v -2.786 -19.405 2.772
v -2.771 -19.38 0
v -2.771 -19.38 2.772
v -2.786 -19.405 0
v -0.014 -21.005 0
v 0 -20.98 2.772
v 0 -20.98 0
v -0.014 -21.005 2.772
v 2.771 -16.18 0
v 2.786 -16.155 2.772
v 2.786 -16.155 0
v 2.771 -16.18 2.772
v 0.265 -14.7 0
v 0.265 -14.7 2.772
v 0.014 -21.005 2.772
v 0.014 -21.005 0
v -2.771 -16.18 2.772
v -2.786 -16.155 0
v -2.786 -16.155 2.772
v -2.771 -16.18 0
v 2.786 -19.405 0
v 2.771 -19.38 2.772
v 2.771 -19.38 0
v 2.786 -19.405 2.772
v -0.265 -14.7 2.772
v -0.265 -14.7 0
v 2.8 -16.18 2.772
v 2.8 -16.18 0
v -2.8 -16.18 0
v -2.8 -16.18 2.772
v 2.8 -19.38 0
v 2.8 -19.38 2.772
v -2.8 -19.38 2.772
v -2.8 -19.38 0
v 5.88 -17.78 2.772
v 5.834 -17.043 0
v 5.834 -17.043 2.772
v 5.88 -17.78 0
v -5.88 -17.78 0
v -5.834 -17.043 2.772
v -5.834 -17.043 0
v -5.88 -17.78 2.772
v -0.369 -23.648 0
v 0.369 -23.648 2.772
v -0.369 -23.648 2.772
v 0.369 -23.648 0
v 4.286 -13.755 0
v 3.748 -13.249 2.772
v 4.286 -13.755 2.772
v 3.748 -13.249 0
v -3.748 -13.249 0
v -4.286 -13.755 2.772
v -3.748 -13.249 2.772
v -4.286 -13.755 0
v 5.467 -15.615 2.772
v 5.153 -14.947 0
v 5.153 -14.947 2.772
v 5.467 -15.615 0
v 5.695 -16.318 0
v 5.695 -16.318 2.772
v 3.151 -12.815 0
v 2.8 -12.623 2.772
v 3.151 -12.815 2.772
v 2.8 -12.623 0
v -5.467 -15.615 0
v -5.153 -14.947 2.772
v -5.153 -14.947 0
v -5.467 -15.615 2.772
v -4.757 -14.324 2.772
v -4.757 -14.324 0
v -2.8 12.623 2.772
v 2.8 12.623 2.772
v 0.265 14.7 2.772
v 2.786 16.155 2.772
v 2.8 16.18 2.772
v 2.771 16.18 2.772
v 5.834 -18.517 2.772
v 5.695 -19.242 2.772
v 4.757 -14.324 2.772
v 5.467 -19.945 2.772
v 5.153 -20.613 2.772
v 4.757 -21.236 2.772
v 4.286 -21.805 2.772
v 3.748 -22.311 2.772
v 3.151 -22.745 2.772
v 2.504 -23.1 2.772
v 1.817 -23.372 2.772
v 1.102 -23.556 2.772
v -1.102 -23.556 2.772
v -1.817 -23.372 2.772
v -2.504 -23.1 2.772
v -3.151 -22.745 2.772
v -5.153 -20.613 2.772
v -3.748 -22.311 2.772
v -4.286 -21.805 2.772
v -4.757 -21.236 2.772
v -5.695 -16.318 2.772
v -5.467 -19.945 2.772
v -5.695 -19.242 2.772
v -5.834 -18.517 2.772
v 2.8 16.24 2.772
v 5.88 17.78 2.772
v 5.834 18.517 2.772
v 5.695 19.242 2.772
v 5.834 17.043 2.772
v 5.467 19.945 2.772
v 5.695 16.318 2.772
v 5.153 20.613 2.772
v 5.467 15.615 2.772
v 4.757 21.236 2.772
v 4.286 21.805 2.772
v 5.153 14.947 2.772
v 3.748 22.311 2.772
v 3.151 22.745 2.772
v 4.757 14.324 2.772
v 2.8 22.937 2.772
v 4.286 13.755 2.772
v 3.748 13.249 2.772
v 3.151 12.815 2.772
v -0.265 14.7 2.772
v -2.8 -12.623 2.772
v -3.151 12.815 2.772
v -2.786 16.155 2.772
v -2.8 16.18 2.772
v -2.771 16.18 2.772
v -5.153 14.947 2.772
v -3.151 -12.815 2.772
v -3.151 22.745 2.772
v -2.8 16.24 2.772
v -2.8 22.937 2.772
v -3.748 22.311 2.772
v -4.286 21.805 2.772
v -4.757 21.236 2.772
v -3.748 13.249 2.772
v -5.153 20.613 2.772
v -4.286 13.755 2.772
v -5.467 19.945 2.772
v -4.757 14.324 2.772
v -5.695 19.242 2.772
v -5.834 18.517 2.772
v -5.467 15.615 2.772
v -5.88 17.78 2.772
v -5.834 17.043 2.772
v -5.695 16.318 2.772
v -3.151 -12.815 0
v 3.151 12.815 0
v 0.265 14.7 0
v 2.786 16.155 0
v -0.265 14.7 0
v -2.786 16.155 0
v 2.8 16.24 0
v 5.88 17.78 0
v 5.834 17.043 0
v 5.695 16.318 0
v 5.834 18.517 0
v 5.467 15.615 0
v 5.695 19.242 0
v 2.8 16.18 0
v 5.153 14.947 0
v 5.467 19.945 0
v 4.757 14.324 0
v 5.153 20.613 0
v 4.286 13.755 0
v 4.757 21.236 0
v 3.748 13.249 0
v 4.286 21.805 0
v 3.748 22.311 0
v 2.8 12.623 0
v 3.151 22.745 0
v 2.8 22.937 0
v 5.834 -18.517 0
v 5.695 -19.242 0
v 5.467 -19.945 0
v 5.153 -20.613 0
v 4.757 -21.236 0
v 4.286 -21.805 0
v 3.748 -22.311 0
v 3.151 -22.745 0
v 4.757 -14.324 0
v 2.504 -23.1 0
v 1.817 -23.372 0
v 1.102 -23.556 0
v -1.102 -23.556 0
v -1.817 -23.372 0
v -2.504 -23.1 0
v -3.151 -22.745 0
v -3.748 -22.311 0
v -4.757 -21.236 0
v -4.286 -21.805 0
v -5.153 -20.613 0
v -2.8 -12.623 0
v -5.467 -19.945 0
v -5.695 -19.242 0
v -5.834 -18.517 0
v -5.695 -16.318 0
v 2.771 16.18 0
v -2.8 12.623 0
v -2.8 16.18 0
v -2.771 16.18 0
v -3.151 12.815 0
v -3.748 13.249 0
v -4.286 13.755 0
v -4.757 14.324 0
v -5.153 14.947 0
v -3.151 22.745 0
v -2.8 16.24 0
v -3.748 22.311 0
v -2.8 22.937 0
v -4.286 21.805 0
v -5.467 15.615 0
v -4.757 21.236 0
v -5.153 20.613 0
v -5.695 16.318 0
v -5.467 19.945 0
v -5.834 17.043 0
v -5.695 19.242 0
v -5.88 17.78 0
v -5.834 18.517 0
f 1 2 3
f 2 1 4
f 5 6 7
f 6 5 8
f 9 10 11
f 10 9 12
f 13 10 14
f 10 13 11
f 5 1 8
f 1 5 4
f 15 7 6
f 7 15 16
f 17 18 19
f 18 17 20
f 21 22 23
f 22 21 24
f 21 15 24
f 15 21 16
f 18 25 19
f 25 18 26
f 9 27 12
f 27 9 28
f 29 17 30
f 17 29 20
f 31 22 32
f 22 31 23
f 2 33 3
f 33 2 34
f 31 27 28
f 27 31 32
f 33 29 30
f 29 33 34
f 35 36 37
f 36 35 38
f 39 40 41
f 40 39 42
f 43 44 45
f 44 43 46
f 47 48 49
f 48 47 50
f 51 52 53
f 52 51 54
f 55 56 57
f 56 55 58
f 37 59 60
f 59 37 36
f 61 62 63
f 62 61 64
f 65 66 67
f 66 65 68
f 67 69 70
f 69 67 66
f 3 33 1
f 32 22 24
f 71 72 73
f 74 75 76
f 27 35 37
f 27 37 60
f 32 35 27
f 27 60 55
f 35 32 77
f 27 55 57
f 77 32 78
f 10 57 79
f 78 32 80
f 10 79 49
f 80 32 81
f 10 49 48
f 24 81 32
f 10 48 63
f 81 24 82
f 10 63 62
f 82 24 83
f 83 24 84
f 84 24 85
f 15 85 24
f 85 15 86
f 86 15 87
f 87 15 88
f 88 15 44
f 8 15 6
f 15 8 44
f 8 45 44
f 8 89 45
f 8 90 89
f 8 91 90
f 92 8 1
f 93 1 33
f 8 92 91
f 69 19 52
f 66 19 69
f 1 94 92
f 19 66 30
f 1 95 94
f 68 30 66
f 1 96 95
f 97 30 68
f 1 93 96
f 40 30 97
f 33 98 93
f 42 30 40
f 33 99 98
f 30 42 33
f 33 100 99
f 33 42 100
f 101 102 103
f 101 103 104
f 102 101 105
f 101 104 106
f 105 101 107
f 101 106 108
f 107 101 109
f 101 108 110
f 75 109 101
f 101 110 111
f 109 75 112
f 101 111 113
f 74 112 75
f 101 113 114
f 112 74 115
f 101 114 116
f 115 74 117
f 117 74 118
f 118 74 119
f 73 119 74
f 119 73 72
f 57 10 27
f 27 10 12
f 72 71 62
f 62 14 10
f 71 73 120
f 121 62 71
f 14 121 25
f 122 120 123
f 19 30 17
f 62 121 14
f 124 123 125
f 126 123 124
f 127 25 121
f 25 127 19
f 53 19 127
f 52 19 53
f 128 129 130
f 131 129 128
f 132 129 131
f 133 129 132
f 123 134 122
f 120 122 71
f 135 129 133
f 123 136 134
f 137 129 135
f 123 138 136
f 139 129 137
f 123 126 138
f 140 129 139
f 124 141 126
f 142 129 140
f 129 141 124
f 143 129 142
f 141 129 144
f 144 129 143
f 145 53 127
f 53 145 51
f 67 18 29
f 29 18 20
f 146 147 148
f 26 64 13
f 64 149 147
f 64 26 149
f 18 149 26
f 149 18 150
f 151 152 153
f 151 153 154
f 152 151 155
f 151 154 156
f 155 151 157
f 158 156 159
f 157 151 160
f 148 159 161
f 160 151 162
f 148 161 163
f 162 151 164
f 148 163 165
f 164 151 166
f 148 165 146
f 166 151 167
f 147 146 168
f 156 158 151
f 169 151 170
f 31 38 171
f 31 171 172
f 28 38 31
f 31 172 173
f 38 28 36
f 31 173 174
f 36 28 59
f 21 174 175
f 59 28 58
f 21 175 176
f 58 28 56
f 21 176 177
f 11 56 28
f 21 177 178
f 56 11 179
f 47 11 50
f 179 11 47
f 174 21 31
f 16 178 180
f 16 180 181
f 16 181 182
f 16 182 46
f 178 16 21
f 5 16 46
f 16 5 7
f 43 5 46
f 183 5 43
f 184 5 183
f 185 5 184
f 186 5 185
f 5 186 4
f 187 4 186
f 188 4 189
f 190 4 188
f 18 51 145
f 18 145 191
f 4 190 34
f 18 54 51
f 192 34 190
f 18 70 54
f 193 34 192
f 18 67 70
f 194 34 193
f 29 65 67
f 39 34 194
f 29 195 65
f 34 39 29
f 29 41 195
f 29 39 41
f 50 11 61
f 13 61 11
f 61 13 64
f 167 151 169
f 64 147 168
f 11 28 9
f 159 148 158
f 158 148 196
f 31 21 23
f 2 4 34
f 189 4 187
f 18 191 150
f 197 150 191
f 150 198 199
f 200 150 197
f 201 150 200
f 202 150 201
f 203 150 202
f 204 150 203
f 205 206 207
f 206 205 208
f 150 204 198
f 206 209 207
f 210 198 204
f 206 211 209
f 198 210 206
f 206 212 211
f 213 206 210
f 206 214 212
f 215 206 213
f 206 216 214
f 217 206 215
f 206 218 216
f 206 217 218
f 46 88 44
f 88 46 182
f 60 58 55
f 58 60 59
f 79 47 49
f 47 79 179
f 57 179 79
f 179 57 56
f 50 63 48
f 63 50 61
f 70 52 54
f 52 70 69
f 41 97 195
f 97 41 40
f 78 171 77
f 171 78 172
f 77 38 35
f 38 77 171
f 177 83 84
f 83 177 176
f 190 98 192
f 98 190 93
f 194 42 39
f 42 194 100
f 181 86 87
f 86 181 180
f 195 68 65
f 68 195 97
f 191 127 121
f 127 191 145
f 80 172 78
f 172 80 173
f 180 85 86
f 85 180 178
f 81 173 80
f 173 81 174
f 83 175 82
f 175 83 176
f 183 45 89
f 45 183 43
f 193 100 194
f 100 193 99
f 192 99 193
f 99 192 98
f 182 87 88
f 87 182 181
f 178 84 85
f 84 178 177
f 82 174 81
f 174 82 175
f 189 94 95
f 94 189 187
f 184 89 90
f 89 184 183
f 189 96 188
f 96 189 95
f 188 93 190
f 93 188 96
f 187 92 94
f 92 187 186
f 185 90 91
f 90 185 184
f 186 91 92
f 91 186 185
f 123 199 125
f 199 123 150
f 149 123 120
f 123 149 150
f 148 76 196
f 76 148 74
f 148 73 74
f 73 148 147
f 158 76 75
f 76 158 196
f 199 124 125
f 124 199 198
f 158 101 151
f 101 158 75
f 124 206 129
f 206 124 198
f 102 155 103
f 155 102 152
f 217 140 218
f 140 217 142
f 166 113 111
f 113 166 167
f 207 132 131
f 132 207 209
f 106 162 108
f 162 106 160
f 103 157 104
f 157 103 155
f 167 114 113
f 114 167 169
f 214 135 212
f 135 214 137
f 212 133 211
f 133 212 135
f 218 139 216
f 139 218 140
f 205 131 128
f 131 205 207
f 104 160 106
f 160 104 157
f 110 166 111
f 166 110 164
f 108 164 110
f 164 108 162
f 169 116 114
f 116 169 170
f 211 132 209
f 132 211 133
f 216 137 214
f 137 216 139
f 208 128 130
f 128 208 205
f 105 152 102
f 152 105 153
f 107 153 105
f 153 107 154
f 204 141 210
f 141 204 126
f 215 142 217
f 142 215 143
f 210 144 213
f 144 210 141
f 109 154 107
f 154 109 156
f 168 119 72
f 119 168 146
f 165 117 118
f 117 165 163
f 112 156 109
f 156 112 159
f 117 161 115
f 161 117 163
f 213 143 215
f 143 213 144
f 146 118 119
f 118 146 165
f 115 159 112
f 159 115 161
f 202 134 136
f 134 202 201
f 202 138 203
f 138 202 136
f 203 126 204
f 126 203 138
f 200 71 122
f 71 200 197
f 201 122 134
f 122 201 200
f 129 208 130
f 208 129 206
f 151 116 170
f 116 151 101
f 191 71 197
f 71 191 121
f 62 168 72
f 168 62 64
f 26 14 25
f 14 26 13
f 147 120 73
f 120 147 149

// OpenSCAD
use <MCAD/shapes.scad>		// For octagon

$fn = 50;					// So the cylinders are smooth

nut_diameter = 5.6;			// My M3 nut measured ~5.4, I added a fudge factor
nut_thickness = 2.31;

// Calculate some nice values

wrench_thickness = 1.2 * nut_thickness;
wrench_length = 5.25 * nut_diameter;
wrench_head_extra_d = 1.1 * nut_diameter;	// If your wrench is big, you
										// probably just want this to be 10

// Something to make wrench heads for us

module wrench_head(thickness, nut_d, head_extra, open_ended) {
	difference() {
		translate([0, 0, -thickness / 2]) {
			cylinder(h = thickness, r = (nut_d + head_extra) / 2);
		}

		rotate(30) {
			hexagon(nut_d, thickness * 1.1);
		}

		translate([0, nut_d / 2, 0]) {
			if (open_ended) {
				box(nut_d, nut_d + head_extra / 2, thickness * 1.1);
			}
		}
	}
}

// Put us flat on the bed

translate([0, 0, wrench_thickness / 2]) {

	// The handle

	box(nut_diameter, wrench_length, wrench_thickness);

	// Make the closed head

	translate([0, -((wrench_length + wrench_head_extra_d) / 2), 0]) {
		wrench_head(wrench_thickness, nut_diameter, wrench_head_extra_d, false);
	}

	// And the open head

	translate([0, (wrench_length + wrench_head_extra_d) / 2, 0]) {
		wrench_head(wrench_thickness, nut_diameter, wrench_head_extra_d, true);
	}
}
